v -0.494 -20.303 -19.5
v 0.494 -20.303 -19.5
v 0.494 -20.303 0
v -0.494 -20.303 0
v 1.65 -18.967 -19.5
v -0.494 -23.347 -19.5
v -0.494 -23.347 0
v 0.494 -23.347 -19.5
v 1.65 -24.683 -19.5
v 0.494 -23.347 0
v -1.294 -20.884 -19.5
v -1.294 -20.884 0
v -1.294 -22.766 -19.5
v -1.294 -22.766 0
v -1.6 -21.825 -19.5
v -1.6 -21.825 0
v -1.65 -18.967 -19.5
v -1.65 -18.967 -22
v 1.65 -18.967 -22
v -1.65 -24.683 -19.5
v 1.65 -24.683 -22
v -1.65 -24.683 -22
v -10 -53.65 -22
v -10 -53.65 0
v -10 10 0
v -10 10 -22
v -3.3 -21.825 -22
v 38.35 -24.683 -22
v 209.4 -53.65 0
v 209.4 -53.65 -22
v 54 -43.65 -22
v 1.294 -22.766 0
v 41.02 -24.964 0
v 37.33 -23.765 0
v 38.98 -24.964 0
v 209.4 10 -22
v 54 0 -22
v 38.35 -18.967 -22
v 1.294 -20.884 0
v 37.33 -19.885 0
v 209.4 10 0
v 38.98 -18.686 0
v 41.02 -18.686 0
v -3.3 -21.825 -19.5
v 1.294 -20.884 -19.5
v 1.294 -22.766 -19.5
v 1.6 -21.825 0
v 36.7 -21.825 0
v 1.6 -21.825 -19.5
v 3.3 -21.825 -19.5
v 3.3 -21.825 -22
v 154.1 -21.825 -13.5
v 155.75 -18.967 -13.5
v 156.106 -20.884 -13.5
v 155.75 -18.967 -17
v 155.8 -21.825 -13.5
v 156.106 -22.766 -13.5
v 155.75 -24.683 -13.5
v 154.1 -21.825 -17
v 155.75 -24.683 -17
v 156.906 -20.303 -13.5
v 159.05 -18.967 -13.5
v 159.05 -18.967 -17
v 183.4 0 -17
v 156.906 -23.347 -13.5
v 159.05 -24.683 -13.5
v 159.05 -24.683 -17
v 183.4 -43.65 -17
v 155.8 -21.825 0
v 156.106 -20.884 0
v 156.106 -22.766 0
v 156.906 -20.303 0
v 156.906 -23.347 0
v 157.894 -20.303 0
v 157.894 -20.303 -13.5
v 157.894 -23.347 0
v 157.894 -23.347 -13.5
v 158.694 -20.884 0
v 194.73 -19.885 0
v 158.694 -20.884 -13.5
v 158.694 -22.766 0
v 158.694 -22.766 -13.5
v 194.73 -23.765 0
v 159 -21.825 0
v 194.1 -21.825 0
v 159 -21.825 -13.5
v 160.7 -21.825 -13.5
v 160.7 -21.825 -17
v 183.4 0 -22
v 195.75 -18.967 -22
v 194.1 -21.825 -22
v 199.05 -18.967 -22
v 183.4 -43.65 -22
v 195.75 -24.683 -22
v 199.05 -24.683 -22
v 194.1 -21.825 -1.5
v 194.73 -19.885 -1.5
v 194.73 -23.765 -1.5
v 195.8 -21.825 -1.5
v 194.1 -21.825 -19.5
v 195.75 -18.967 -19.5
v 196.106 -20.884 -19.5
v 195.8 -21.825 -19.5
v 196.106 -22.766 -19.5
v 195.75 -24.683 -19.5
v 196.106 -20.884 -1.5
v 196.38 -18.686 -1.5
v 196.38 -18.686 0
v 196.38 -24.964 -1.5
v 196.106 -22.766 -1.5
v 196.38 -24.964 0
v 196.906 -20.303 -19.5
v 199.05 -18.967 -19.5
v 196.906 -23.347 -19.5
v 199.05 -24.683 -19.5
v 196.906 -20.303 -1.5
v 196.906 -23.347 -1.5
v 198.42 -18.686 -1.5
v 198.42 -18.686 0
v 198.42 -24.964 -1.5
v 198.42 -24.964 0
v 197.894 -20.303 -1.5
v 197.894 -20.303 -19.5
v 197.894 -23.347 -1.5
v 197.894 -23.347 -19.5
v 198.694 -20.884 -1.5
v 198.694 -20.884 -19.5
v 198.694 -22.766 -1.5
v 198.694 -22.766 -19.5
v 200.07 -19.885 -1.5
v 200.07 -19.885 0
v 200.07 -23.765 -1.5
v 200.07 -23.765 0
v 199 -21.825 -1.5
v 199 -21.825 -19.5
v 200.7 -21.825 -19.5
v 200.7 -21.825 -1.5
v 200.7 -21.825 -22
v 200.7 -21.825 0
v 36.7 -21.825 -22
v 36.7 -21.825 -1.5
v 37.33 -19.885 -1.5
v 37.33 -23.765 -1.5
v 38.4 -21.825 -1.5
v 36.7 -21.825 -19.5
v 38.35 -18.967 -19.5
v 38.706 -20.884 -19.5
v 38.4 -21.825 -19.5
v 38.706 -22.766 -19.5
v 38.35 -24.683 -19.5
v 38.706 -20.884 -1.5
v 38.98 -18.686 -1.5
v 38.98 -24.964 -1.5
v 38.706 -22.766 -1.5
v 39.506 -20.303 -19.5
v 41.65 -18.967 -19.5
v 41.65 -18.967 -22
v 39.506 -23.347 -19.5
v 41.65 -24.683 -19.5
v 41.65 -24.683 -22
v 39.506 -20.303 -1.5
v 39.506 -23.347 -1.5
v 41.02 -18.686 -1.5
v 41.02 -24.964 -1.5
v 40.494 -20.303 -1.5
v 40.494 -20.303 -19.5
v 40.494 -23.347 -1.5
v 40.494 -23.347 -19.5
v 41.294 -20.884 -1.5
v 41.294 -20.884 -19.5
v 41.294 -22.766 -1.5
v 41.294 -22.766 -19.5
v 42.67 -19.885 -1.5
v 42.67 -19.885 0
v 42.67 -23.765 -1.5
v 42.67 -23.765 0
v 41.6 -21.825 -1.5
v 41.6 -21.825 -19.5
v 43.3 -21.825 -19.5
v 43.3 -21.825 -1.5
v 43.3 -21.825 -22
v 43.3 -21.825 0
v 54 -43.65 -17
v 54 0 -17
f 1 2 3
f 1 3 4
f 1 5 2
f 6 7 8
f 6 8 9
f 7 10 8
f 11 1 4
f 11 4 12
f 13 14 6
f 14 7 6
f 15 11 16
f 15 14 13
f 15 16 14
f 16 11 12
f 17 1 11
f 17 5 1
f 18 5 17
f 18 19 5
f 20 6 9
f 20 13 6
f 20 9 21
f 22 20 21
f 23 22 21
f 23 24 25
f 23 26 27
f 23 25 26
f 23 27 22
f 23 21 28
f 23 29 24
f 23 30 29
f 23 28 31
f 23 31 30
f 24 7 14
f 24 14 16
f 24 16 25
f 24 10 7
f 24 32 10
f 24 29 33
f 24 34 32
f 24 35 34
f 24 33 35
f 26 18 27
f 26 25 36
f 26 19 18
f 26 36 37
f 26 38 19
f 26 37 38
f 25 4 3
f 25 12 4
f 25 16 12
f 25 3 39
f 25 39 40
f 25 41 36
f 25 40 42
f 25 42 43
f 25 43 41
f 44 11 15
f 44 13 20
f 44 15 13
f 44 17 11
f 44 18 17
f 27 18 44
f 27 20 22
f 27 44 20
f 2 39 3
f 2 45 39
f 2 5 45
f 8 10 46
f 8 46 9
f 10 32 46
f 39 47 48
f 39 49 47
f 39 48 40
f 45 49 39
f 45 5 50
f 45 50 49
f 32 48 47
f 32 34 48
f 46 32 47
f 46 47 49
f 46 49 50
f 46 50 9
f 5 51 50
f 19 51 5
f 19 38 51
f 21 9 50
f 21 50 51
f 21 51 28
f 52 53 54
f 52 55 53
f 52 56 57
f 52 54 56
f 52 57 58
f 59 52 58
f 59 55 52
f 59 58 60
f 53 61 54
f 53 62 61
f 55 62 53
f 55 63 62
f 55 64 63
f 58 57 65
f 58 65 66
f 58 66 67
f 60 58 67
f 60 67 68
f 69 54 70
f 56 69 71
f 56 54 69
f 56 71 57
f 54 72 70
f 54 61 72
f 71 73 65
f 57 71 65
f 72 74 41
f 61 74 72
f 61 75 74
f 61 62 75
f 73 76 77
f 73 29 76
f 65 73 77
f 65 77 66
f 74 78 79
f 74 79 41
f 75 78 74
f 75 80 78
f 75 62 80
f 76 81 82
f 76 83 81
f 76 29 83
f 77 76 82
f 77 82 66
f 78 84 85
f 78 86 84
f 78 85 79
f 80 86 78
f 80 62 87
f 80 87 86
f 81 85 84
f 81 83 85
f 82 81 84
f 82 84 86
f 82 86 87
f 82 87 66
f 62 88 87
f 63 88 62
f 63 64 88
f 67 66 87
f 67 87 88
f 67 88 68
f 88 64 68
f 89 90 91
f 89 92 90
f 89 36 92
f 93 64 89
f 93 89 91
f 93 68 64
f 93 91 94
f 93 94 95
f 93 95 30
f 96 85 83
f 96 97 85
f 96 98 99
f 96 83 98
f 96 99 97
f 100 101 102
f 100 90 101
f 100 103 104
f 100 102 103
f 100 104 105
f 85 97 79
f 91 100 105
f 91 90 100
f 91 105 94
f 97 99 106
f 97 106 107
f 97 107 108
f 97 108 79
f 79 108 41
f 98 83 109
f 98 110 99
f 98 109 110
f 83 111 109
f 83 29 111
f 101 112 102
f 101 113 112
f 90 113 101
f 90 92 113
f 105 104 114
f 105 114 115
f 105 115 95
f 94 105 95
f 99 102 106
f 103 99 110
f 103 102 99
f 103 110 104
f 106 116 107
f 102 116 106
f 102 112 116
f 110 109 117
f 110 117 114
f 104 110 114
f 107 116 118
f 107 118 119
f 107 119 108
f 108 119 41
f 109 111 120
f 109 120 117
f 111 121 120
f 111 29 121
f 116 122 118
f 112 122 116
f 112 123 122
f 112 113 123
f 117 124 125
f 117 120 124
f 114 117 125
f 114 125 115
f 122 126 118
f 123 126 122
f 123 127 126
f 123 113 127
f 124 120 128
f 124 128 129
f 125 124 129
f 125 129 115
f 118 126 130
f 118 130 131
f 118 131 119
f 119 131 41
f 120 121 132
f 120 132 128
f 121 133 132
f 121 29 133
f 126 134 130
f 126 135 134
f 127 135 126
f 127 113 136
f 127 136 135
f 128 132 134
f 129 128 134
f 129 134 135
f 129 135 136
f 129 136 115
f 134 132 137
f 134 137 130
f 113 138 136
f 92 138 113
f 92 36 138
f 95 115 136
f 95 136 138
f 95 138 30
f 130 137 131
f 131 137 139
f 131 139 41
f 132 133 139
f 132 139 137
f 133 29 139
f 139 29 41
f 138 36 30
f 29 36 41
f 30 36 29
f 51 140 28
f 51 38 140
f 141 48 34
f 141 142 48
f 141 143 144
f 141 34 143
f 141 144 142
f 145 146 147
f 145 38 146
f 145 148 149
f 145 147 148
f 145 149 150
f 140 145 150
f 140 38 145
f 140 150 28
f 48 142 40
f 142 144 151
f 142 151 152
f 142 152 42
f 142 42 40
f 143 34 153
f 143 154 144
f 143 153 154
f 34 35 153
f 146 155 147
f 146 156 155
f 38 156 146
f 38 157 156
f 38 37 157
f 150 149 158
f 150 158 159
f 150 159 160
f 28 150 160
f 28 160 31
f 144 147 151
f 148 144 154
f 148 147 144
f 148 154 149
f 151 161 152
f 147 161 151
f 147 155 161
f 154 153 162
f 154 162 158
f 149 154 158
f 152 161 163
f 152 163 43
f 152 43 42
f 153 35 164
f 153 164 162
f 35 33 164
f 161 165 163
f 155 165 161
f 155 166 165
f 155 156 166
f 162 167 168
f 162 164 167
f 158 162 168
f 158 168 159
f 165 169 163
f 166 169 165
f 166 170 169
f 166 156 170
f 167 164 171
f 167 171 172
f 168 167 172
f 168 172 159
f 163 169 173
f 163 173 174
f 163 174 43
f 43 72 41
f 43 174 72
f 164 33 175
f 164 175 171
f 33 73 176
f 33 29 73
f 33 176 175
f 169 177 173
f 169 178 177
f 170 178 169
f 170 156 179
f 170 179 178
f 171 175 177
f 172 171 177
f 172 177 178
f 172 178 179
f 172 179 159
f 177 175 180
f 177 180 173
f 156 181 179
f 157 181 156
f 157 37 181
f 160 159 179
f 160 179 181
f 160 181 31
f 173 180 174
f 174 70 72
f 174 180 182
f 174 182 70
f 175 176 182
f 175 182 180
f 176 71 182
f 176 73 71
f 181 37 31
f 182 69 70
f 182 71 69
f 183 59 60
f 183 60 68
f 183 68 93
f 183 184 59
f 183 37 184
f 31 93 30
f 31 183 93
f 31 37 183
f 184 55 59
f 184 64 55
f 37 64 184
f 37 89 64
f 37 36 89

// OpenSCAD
include <../parameters.scad>
draft = true;

accumulator_spacer_thickness = 22;  // 22mm napocitano na pouziti M3x30 sroubou
accumulator_spacer_sink = sink_of_accumulator;
accumulator_spacer_move = 40; // posuv smerem dopredu
accumulator_spacer_wall = 10;
accumulator_spacer_wall_end = 25;
accumulator_spacer_width = height_of_accumulator + 2*accumulator_spacer_wall;
accumulator_spacer_length = width_of_accumulator + accumulator_spacer_move + 2*accumulator_spacer_wall_end;

accumulator_threads_distance = (width_of_accumulator/2 + accumulator_holder_width/2 + accumulator_holder_thickness/2)*2;


module 888_1019(draft){
rotate([0, 180, 180])
    difference(){
        translate([-accumulator_spacer_wall, -accumulator_spacer_wall, 0])
            cube([accumulator_spacer_length, accumulator_spacer_width, accumulator_spacer_thickness]);



      //akumulátor
      translate([accumulator_spacer_move + accumulator_threads_distance/2 - width_of_accumulator/2, 0, accumulator_spacer_thickness-accumulator_spacer_sink])
        cube([width_of_accumulator, height_of_accumulator, depth_of_accumulator]);


      //for(x=[0, accumulator_threads_distance, accumulator_spacer_move, accumulator_spacer_move + accumulator_threads_distance]){
      #translate([0, 0, 0])
          union (){

            //šrouby pro připevnění akumulátorů
            translate([0, height_of_accumulator/2, 0])
                cylinder(h = 100, r = M3_screw_diameter/2, $fn = draft ? 10 : 20, center = true);

             // díry pro matky pro sroub drzici obruce pres baterie..
             translate([0, height_of_accumulator/2, accumulator_spacer_thickness])
                cylinder(h = 5, d = M3_nut_diameter, $fn = 6, center = true);
          }

    translate([accumulator_threads_distance, 0, 0])
        #union (){

            //šrouby pro připevnění akumulátorů
            translate([0, height_of_accumulator/2, 0])
                cylinder(h = 100, r = M3_screw_diameter/2, $fn = draft ? 10 : 20, center = true);

              // díry pro matky pro sroub drzici obruce pres baterie..
              translate([0, height_of_accumulator/2, accumulator_spacer_thickness - accumulator_spacer_sink-1])
                  cylinder(h = 5, d = M3_nut_diameter, $fn = 6, center = true);
          }


          #translate([accumulator_spacer_move, 0, 0])
              union (){

                //šrouby pro připevnění akumulátorů
                  translate([0, height_of_accumulator/2, 0])
                      cylinder(h = 100, r = M3_screw_diameter/2, $fn = draft ? 10 : 20, center = true);

                  //díry pro zapuštění hlaviček šroubů
                  translate([0, height_of_accumulator/2, 0])
                      cylinder(h = M3_screw_head_height, d = M3_nut_diameter, $fn = draft ? 10 : 20, center = true);

                  translate([0, height_of_accumulator/2, 0])
                      cylinder(h = M3_screw_head_height, d = M3_nut_diameter, $fn = draft ? 10 : 20, center = true);

              // díry pro matky pro sroub drzici obruce pres baterie..
                  translate([0, height_of_accumulator/2, accumulator_spacer_thickness])
                      cylinder(h = 5, d = M3_nut_diameter, $fn = 6, center = true);
              }

          #translate([accumulator_spacer_move + accumulator_threads_distance, 0, 0])
              union (){

                //šrouby pro připevnění akumulátorů
                  translate([0, height_of_accumulator/2, 0])
                      cylinder(h = 100, r = M3_screw_diameter/2, $fn = draft ? 10 : 20, center = true);


                  //díry pro zapuštění hlaviček šroubů
                  translate([0, height_of_accumulator/2, 0])
                      cylinder(h = M3_screw_head_height, d = M3_nut_diameter, $fn = draft ? 10 : 20, center = true);

                  translate([0, height_of_accumulator/2, 0])
                      cylinder(h = M3_screw_head_height, d = M3_nut_diameter, $fn = draft ? 10 : 20, center = true);

              // díry pro matky pro sroub drzici obruce pres baterie..
                  translate([0, height_of_accumulator/2, accumulator_spacer_thickness])
                      cylinder(h = 5, d = M3_nut_diameter, $fn = 6, center = true);
              }




    }
}


888_1019(draft);
